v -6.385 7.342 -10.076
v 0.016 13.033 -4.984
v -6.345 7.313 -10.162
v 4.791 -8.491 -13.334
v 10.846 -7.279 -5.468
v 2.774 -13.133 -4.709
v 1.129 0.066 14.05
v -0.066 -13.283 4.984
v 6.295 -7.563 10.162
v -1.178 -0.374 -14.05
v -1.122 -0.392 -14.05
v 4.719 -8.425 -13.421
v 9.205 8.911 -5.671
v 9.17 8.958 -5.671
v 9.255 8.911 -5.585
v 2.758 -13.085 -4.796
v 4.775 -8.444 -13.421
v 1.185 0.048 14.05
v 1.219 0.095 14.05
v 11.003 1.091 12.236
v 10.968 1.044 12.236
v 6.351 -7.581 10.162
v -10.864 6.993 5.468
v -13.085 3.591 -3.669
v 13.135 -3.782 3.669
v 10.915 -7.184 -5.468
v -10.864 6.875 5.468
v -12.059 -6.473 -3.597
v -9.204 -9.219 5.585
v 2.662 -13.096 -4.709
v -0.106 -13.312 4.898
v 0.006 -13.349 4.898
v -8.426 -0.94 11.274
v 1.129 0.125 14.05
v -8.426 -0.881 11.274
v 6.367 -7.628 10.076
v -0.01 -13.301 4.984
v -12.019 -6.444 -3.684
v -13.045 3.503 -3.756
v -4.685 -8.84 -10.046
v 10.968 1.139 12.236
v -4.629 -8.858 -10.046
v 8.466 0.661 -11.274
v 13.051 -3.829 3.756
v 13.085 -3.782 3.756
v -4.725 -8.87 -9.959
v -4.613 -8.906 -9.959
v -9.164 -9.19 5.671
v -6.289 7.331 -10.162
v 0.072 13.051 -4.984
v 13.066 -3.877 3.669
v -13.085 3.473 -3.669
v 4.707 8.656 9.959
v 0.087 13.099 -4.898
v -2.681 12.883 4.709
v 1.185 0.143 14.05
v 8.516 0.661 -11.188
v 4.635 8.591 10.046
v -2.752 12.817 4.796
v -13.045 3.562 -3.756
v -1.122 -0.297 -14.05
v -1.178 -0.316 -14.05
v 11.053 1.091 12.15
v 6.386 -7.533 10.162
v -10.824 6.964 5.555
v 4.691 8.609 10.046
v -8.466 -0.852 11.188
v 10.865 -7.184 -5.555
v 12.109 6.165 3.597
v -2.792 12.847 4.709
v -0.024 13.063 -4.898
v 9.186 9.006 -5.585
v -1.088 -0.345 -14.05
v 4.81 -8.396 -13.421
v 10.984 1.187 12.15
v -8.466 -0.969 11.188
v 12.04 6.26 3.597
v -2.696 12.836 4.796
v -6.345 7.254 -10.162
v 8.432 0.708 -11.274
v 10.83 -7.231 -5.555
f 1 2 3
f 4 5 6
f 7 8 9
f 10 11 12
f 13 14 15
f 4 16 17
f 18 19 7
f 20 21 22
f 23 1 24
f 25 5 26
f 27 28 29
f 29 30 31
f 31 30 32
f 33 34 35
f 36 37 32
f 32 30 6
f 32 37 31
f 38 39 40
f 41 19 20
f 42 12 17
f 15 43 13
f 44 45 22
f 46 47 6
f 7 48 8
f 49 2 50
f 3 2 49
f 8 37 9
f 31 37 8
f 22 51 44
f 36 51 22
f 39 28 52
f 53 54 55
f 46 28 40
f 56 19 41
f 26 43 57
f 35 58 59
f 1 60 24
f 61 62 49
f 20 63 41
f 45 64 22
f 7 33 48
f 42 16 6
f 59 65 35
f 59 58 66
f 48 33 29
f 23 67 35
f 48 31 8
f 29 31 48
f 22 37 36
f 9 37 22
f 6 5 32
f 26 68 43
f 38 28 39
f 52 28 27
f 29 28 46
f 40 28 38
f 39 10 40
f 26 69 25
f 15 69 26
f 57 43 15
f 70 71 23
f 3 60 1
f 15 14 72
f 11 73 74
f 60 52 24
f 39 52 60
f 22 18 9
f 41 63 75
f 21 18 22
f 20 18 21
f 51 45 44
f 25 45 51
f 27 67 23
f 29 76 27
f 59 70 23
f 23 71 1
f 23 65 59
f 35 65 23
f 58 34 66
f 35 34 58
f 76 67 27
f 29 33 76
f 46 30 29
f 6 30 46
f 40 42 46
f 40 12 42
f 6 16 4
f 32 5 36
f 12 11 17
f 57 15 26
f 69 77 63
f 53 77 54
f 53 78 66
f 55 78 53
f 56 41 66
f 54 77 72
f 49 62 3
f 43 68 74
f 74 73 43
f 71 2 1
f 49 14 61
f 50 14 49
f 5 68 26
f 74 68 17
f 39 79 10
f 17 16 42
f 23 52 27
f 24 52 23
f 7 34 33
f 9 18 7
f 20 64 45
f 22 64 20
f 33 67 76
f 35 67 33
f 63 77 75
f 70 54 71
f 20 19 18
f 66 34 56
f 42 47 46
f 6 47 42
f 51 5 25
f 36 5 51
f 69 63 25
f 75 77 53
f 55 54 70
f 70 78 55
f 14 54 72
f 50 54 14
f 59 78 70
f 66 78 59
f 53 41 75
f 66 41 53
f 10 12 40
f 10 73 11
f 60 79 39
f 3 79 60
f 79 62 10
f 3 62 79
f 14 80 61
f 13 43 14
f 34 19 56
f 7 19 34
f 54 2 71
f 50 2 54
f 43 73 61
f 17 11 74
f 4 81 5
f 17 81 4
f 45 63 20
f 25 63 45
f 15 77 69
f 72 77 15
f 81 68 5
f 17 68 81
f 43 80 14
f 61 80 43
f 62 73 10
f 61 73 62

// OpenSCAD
// Auto-generated OpenSCAD file

    inner_points = 10*[[1.0814810122881062, -0.7183738797289009, -0.5468250446206121], [-1.3004127886071162, 0.35322504522391734, -0.366937214163524], [1.303539873942325, -0.3781851139200541, 0.366937214163524], [-1.0783539269528974, 0.693413811032764, 0.5468250446206121], [-0.002530637731901048, -1.325352391133482, 0.48977025638353333], [-0.9123331120812015, -0.9160380241093531, 0.5584812934556624], [0.9154601974164103, 0.8910779554132162, -0.5584812934556624], [0.005657723067109926, 1.300392322437345, -0.48977025638353333], [-0.46443592982219944, -0.8810934394293531, -0.9959320939274633], [0.11692171749165503, 0.00953231204908575, 1.3963285572062816], [-0.11379463215644614, -0.03449238074522254, -1.3963285572062816], [0.46756301515740833, 0.8561333707332163, 0.9959320939274633], [0.27428504436946866, -1.303755450078493, -0.47091004958709537], [-1.197806282176454, -0.6414708921498036, -0.3597332562021365], [0.6335838300291047, -0.7533184644089008, 1.0075883427625139], [-0.8385074965168178, -0.09103390648021122, 1.1187651361474726], [0.8416345818520266, 0.06607383778407443, -1.1187651361474726], [-0.6304567446938959, 0.728358395712764, -1.0075883427625139], [1.2009333675116627, 0.6165108234536667, 0.3597332562021365], [-0.27115795903425977, 1.278795381382356, 0.47091004958709537], [0.4759894926735763, -0.839597012174386, -1.3333903450470872], [1.0952793220598376, 0.1091399180587309, 1.2149595344691149]];

    outer_points = 10*[[0.15864682006284056, -1.3894175827447022, -0.08874378178914308], [0.6901488531106656, 1.1567979453568165, -0.38605513301949795], [-0.6901488531106656, -1.1567979453568165, 0.38605513301949795], [-0.15864682006284056, 1.3894175827447022, 0.08874378178914308], [-0.7405582699303093, -0.4862838945260085, -1.0856458512447171], [-0.5375425583957099, 0.4862838945260085, -1.1992086821735548], [0.5375425583957099, -0.4862838945260085, 1.1992086821735548], [0.7405582699303093, 0.4862838945260085, 1.0856458512447171], [0.8669924232504709, -0.30450305856608023, -1.0578882346035428], [-1.3551834986216158, 0.30450305856608023, 0.18515146218704537], [1.3551834986216158, -0.30450305856608023, -0.18515146218704537], [-0.8669924232504709, 0.30450305856608023, 1.0578882346035428], [0.12749208711524018, -0.9750171093968881, -0.9983050113411022], [0.45597840862846595, 0.5986306296526133, -1.1820535316426193], [-1.2458881615833401, -0.5986306296526133, -0.23006422935915521], [-0.9174018400701144, 0.9750171093968881, -0.4138127496606724], [0.9174018400701144, -0.9750171093968881, 0.4138127496606724], [1.2458881615833401, 0.5986306296526133, 0.23006422935915521], [-0.45597840862846595, -0.5986306296526133, 1.1820535316426193], [-0.12749208711524018, 0.9750171093968881, 0.9983050113411022], [1.008624136050673, -1.1625333737755705, -0.5642036833860836], [-1.358543396501757, -0.5137910787071536, 0.7599413507467598]];

    // Convex hull for inner set (I)
    module inner_hull() {
        hull() {
            for (p = inner_points) {
                translate(p) sphere(r=0.1);
            }
        }
    }

    // Convex hull for outer set (O) minus inner hull (O \ I)
    module outer_minus_inner() {
        difference() {
            hull() {
                for (p = outer_points) {
                    translate(p) sphere(r=0.1);
                }
            }
            inner_hull(); // Subtract inner hull
        }
    }

    // Convex hull for outer set (O) minus all translated inner hulls
    module outer_minus_AllTranslationInner() {
        difference() {
            hull() {
                for (p = outer_points) {
                    translate(p) sphere(r=0.1);
                }
            }
            hull() {
                translate([0,0,50]) inner_hull();
                translate([0,0,-50]) inner_hull();
            }; // Subtract translated inner hulls
        }
    }

    // Difference between outer_minus_inner and outer_minus_AllTranslationInner
    module outer_minus_inner_diff() {
        difference() {
            // Outer minus inner
            difference() {
                hull() {
                    for (p = outer_points) {
                        translate(p) sphere(r=0.1);
                    }
                }
                inner_hull();
            }

            // Subtract Outer minus AllTranslationInner
            difference() {
                hull() {
                    for (p = outer_points) {
                        translate(p) sphere(r=0.1);
                    }
                }
                hull() {
                    translate([0,0,50]) inner_hull();
                    translate([0,0,-50]) inner_hull();
                };
            }
        }
    }

    // Rendering all with colors applied
    color([1, 0, 0, 0.5]) inner_hull(); // Transparent red
    
